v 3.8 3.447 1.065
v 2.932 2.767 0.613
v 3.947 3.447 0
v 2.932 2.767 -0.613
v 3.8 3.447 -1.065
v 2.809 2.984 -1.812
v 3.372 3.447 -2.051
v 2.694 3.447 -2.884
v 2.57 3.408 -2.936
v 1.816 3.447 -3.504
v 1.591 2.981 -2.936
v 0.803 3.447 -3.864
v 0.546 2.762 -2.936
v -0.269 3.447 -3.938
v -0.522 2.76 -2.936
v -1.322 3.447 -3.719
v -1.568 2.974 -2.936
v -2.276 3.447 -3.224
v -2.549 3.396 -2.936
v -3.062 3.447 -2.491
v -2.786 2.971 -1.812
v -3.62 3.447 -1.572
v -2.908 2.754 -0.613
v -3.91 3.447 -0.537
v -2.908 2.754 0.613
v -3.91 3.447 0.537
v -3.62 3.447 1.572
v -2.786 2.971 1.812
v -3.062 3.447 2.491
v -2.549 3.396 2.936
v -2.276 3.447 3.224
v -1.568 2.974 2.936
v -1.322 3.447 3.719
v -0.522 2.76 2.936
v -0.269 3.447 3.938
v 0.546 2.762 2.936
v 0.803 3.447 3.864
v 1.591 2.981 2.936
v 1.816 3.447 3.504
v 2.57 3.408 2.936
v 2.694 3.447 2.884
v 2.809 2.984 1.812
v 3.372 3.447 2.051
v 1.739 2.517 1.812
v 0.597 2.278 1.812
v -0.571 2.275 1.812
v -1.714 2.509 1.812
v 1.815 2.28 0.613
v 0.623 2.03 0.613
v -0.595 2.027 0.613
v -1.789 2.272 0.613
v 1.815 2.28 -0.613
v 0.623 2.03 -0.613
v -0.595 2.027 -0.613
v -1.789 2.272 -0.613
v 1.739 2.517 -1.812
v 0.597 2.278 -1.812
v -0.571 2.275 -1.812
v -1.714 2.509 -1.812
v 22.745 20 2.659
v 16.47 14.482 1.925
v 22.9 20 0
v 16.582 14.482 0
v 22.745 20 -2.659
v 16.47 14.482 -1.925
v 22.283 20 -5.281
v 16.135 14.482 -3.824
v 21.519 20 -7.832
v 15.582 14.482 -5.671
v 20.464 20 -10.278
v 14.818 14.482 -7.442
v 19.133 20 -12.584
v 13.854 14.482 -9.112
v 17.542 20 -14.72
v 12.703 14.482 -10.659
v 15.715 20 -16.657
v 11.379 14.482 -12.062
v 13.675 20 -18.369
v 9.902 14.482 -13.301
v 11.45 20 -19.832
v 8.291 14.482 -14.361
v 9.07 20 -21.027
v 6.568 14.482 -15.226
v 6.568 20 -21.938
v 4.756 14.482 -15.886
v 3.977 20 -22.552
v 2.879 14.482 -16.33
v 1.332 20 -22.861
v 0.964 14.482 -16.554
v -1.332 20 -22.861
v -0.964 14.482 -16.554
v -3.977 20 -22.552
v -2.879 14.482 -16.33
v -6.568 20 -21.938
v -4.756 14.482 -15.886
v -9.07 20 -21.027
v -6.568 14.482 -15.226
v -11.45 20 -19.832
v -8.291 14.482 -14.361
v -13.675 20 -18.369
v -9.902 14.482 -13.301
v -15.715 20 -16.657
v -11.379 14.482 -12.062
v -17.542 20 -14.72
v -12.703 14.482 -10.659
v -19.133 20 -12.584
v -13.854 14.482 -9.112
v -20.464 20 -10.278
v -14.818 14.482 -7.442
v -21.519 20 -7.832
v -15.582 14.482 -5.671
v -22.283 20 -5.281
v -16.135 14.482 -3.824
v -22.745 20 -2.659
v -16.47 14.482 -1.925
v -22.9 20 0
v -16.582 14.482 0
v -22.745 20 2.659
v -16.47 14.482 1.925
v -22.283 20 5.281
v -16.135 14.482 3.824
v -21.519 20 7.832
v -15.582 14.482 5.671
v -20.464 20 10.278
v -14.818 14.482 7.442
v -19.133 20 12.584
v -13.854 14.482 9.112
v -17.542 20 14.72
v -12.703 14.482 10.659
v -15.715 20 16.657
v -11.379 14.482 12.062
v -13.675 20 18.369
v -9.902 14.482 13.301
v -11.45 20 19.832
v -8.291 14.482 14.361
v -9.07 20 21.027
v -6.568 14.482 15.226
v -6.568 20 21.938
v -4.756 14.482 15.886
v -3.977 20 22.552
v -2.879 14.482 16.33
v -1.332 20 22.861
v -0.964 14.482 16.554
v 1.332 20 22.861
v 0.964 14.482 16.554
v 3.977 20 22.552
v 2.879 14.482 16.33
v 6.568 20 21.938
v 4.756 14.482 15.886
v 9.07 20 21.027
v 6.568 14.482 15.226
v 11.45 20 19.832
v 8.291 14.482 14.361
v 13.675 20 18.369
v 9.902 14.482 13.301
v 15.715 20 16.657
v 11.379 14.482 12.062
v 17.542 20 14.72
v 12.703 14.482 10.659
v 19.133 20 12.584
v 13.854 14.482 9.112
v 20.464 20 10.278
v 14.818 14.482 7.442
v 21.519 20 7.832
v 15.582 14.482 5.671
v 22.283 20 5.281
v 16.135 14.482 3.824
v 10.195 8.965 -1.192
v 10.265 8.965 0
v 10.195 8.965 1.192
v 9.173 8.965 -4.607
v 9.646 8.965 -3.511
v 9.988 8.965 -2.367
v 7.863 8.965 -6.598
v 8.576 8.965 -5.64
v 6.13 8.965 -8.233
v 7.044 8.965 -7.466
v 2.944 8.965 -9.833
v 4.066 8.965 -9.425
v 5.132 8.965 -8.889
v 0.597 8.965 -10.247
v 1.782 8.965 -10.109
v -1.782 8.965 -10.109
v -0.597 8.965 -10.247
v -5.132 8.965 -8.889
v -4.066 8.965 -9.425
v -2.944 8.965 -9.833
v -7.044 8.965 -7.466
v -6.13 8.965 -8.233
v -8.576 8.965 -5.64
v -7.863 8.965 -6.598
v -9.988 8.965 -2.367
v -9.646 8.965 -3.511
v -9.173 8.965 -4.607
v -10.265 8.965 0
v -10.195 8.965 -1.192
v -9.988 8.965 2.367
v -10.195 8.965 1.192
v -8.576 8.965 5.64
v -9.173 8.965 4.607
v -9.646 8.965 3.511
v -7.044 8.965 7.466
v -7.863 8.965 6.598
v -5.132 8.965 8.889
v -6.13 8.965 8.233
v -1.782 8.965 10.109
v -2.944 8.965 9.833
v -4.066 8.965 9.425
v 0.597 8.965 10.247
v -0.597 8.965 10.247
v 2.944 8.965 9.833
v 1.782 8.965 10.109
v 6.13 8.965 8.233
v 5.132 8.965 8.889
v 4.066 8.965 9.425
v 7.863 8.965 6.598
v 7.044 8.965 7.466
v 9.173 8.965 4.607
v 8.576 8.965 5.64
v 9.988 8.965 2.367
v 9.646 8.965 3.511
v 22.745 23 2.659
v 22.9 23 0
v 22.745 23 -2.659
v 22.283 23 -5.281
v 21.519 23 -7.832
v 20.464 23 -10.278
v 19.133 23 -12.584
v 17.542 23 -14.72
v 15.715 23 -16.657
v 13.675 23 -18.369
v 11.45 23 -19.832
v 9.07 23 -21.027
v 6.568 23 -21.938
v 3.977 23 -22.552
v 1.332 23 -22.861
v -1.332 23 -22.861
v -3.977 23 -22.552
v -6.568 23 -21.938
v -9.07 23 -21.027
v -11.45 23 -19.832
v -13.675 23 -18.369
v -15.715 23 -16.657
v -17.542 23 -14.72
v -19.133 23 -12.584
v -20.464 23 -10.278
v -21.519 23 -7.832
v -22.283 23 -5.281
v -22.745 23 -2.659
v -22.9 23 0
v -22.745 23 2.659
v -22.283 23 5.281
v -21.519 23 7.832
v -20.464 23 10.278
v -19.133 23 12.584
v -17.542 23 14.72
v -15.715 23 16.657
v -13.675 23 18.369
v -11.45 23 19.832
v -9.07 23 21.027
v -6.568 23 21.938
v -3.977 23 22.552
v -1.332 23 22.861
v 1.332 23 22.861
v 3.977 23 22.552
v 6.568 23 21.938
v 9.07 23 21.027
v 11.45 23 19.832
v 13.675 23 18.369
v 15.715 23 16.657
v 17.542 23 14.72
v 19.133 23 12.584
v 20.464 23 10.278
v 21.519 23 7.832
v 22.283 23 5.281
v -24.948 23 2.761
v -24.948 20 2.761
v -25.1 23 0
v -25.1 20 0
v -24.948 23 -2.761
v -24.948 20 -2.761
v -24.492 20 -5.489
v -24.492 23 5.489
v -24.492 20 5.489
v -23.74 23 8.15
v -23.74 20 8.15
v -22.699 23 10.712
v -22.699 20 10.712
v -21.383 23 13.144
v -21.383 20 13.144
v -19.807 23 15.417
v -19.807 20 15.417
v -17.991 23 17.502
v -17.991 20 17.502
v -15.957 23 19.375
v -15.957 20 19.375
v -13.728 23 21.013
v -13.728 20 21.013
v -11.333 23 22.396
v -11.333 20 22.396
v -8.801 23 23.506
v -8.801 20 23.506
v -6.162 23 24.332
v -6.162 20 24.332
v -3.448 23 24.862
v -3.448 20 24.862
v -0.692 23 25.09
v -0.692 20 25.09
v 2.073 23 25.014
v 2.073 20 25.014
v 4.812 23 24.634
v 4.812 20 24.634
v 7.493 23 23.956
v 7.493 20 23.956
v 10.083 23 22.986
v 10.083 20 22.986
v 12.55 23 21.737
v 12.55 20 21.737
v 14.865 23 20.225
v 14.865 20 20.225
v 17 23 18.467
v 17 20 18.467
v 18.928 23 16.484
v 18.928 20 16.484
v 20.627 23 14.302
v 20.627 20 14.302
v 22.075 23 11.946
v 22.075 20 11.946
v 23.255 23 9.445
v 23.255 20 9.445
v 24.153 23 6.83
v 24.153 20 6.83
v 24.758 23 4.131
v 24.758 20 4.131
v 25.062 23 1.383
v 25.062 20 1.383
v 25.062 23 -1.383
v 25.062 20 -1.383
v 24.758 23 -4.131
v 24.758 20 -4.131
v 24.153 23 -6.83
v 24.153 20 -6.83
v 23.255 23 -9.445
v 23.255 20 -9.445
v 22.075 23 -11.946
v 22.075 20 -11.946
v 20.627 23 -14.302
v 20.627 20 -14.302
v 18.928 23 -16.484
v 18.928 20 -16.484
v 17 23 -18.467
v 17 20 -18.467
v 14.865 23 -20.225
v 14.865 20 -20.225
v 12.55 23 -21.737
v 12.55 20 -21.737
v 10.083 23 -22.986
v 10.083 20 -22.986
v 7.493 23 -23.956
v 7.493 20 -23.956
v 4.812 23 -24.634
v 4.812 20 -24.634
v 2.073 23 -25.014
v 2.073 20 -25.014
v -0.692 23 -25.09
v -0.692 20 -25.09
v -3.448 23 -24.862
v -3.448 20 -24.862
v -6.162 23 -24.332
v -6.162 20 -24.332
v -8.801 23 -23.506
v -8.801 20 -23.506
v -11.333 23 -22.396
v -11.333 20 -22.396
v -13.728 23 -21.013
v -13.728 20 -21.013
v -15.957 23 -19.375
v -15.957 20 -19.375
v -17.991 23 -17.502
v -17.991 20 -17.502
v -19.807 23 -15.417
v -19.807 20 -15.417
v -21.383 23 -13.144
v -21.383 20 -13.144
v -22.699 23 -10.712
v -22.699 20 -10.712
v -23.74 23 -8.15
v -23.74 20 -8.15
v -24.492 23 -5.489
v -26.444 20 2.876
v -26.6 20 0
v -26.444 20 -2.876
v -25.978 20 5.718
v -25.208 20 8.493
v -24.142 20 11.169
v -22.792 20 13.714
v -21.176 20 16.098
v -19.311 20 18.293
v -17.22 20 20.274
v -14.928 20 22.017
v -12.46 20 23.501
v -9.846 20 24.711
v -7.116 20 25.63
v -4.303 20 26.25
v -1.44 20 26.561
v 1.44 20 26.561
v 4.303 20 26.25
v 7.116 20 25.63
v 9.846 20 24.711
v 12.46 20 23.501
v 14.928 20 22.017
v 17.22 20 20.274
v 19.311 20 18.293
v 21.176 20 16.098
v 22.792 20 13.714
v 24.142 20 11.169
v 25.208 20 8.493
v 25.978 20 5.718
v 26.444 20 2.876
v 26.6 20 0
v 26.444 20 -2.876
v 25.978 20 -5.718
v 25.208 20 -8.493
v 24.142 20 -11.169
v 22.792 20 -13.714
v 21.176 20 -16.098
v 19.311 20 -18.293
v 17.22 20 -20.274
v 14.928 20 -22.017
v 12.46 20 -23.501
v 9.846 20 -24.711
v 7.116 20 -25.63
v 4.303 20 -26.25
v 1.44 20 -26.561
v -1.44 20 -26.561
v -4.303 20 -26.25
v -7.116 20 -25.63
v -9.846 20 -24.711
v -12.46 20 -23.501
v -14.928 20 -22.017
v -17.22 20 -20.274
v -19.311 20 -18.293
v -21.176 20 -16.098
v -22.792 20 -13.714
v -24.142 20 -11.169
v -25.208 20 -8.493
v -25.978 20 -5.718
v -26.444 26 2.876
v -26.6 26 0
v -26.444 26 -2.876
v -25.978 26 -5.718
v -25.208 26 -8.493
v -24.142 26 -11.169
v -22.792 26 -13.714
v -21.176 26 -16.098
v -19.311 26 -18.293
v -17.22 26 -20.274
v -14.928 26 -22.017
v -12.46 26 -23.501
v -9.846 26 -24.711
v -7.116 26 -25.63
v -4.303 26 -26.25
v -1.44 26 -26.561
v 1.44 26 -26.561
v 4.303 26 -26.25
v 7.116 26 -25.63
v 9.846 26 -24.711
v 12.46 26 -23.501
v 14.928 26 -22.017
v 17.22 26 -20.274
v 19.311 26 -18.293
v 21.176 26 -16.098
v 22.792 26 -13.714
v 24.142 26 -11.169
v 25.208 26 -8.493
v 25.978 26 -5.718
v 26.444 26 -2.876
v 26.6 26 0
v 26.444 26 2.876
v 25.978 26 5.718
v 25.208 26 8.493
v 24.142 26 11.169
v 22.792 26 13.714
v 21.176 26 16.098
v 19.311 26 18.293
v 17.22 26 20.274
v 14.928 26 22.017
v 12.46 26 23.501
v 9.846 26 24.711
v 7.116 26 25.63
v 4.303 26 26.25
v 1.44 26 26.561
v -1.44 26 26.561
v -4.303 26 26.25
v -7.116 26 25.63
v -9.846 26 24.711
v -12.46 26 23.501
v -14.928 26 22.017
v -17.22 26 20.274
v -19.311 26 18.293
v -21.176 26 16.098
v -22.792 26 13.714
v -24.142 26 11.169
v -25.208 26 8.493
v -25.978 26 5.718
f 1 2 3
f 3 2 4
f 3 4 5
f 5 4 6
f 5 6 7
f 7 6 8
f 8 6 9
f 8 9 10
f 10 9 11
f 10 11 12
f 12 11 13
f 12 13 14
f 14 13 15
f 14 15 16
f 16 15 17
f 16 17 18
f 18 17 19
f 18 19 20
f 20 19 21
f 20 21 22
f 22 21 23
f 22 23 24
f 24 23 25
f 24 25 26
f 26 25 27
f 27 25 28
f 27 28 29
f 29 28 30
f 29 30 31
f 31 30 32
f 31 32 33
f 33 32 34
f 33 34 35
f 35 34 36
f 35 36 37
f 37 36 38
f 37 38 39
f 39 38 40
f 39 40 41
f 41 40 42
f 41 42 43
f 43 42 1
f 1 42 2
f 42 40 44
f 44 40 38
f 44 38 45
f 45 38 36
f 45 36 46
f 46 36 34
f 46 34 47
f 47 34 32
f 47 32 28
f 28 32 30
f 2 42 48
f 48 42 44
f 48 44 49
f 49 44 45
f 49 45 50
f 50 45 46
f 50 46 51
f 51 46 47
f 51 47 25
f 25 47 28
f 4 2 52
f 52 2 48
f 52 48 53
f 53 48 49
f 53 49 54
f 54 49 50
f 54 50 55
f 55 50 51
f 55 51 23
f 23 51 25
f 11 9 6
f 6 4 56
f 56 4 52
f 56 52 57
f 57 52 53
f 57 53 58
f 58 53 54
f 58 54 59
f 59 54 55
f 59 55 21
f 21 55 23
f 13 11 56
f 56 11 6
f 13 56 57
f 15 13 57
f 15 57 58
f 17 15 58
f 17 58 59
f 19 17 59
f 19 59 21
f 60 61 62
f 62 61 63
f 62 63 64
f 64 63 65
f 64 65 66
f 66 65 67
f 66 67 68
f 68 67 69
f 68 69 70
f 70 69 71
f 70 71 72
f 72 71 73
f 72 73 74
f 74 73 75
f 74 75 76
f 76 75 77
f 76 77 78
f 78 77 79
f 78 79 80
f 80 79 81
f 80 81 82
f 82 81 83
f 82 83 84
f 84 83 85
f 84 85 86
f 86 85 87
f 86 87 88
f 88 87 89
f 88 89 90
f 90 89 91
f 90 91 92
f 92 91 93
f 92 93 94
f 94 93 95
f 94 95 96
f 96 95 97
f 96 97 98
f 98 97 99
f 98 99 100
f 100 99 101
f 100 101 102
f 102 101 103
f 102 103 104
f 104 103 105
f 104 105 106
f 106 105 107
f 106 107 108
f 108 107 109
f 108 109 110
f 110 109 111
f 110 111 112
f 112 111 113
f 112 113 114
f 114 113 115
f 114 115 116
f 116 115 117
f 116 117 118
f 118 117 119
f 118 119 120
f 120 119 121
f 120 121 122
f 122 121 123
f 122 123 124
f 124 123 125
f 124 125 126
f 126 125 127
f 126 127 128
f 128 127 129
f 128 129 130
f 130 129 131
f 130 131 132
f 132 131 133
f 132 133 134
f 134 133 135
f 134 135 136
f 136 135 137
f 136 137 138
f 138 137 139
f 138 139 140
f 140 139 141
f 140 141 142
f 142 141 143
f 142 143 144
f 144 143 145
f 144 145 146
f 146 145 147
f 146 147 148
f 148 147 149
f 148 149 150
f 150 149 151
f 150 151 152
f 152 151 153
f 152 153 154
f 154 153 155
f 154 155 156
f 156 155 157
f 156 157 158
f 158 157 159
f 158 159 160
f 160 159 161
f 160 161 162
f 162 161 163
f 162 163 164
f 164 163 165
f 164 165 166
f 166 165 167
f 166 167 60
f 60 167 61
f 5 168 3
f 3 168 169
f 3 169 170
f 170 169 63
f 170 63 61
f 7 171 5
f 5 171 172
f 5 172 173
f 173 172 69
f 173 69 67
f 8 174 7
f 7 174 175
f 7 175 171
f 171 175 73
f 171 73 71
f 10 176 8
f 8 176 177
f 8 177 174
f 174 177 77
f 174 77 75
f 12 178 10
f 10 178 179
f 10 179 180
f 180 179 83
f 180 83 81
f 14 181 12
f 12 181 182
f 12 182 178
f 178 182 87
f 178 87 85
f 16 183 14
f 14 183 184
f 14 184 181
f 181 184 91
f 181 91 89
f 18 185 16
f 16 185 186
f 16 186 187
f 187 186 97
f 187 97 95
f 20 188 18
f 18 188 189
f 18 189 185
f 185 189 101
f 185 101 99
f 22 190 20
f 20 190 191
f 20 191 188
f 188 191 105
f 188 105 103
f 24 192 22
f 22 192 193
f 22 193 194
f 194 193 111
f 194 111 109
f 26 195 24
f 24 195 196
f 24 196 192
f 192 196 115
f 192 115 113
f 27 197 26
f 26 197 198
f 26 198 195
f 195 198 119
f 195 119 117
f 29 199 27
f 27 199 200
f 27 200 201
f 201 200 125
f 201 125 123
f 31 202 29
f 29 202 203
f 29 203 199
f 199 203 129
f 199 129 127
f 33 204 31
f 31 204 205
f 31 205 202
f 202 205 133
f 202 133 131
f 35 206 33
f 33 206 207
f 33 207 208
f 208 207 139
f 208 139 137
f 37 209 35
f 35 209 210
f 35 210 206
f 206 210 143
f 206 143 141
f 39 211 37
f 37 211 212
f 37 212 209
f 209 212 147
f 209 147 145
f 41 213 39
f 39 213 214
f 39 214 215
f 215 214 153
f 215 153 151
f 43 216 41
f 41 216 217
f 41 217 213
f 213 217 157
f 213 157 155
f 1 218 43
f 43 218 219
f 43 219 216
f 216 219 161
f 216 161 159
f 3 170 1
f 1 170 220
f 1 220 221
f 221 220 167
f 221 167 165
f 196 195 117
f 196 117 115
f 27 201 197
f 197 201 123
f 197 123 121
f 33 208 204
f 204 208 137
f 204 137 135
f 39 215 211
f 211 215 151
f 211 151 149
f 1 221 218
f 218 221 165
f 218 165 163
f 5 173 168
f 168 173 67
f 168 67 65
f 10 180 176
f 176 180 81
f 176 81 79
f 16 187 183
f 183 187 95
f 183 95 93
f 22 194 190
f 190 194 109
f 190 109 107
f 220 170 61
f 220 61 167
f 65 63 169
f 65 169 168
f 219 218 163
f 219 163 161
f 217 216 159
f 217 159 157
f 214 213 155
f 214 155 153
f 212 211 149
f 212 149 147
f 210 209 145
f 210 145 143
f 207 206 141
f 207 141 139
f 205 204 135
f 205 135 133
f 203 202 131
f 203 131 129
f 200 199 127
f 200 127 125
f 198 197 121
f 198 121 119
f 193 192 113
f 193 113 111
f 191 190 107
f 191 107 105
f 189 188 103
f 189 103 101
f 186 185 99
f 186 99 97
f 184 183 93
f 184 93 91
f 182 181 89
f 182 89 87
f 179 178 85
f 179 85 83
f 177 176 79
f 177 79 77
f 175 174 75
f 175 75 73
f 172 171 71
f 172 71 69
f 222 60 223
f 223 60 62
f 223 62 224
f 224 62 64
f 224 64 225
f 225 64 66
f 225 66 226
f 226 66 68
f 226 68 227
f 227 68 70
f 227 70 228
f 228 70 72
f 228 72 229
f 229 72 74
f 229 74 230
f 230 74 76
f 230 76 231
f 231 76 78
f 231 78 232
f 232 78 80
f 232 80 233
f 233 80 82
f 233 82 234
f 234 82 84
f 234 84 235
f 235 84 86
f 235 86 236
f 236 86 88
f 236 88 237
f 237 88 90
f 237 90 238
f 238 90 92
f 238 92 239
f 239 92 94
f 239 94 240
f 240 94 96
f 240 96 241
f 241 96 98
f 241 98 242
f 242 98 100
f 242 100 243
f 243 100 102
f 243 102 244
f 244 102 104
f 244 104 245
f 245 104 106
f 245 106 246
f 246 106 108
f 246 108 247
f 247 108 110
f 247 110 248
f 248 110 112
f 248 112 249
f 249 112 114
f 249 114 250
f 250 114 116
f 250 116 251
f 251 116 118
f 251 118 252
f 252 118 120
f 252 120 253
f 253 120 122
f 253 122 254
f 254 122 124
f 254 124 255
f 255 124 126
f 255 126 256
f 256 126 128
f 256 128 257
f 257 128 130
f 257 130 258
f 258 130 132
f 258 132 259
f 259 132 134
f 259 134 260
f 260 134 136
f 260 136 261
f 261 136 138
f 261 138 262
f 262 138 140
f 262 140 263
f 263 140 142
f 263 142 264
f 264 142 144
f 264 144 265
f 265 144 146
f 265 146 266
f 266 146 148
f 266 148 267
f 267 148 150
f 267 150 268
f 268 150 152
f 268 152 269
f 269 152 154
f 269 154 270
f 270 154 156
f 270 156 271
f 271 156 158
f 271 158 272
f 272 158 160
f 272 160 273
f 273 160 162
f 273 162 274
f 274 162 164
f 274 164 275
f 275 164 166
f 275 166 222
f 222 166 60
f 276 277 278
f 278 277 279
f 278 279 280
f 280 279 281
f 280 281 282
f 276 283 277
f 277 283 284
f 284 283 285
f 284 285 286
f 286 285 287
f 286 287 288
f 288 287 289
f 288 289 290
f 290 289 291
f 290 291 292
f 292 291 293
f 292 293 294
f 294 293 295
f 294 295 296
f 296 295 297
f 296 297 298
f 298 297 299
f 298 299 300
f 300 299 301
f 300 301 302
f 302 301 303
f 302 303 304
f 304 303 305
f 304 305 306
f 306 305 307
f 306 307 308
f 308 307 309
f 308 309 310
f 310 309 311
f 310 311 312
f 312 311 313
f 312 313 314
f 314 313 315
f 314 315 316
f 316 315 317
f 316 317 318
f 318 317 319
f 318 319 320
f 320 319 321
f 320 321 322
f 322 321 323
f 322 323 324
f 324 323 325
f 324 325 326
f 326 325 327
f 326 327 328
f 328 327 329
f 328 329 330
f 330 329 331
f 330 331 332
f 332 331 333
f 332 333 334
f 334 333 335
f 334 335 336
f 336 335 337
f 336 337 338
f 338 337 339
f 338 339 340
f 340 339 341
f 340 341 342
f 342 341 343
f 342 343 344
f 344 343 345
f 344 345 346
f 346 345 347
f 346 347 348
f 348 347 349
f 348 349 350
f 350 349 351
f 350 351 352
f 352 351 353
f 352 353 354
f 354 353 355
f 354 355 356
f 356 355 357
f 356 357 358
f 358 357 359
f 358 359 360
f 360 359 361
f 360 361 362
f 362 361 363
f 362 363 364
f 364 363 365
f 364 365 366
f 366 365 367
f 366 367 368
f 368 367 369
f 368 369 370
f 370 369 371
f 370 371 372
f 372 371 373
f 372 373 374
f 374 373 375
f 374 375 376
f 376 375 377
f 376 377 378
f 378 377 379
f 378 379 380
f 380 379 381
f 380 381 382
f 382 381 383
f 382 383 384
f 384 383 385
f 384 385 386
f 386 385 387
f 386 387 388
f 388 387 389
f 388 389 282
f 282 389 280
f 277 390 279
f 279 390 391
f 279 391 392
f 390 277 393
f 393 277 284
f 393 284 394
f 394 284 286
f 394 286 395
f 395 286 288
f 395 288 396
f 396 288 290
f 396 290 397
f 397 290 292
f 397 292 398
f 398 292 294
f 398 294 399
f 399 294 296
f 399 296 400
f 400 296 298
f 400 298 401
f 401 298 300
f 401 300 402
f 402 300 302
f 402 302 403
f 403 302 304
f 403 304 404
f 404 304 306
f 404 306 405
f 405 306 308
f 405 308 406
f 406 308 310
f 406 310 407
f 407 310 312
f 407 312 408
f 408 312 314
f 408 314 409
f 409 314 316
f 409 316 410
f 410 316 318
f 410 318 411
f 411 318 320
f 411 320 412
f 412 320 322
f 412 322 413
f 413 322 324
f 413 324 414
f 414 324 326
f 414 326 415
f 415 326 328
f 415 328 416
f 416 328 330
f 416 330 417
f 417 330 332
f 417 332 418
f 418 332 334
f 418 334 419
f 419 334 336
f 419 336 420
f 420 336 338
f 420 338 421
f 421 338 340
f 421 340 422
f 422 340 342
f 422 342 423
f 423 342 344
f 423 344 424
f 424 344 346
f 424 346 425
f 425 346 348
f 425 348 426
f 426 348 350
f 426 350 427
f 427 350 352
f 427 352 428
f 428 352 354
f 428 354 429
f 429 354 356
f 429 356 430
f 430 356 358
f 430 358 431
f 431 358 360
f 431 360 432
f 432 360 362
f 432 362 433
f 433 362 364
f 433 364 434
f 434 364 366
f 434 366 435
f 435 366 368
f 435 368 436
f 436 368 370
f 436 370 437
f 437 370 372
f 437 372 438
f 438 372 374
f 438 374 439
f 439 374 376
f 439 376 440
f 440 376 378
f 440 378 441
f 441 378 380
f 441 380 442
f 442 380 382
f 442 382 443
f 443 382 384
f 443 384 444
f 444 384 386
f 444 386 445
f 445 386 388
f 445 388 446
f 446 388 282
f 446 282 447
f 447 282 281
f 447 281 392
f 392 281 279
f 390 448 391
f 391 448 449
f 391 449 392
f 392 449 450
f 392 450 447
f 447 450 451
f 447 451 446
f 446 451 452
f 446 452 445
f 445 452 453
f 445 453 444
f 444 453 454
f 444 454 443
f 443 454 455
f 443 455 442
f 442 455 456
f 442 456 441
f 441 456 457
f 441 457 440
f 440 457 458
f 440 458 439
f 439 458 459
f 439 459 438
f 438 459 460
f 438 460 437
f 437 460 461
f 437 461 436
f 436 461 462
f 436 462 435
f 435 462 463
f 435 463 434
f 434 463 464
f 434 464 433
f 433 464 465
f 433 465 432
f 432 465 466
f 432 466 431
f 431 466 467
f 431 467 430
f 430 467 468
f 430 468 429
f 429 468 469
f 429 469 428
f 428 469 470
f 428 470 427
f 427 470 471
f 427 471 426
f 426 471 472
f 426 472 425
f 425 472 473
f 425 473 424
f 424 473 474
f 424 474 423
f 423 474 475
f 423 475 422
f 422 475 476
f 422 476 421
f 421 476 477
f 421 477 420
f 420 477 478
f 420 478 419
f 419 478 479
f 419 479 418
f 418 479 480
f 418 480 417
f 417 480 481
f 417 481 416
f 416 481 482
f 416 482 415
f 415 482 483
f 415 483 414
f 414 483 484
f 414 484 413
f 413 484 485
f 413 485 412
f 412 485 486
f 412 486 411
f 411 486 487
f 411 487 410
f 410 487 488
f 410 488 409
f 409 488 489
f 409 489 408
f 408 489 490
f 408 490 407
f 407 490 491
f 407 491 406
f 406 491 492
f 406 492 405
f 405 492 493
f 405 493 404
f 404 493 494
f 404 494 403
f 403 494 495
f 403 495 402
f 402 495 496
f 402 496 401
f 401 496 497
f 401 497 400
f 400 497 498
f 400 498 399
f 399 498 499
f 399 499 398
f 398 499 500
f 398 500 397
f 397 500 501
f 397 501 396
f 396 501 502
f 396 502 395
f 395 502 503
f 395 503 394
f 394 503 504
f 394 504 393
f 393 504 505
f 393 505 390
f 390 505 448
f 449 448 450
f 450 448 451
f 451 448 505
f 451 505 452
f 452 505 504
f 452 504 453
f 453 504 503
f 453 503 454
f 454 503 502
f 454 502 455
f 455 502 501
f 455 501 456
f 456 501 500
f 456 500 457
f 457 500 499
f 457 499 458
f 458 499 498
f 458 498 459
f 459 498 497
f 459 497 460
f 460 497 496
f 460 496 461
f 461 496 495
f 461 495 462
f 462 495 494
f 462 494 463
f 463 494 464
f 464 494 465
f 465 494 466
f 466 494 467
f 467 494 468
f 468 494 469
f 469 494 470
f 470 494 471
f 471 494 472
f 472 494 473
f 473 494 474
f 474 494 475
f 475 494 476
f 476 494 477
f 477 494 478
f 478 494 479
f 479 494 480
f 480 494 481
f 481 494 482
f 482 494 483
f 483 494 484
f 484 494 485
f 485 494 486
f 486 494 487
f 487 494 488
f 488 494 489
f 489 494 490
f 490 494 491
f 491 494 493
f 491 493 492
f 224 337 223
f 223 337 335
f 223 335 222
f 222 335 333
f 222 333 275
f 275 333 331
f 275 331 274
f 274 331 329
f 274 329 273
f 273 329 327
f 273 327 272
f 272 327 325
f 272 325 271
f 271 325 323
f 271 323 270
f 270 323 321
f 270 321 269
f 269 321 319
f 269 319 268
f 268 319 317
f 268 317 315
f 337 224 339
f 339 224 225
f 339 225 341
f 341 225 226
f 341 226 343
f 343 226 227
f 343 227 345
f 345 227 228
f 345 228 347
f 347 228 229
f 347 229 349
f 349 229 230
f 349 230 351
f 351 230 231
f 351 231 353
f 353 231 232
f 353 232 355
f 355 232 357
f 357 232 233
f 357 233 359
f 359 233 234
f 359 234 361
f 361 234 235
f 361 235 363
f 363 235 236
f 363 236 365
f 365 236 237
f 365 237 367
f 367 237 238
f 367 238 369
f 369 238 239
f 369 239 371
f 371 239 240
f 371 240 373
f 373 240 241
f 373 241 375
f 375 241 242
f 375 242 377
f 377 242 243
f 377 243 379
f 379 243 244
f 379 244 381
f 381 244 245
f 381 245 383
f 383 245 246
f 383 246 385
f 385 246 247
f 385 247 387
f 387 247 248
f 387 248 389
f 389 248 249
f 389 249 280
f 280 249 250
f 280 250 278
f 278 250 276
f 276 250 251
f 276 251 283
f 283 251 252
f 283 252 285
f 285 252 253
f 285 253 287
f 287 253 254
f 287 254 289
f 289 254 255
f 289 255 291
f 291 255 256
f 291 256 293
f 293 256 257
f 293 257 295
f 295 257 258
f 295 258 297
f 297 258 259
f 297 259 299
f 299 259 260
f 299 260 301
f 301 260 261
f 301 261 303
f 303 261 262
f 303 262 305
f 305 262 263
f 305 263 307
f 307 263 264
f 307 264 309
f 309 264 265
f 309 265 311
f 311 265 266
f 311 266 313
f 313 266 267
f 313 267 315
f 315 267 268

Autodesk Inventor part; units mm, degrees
ref_plane "YZ Plane" through (0, 0, 0) normal (1, 0, 0) x (0, 1, 0)
ref_plane "XZ Plane" through (0, 0, 0) normal (0, 1, 0) x (-1, 0, 0)
ref_plane "XY Plane" through (0, 0, 0) normal (0, 0, 1) x (1, 0, 0)
sketch "スケッチ1" plane through (0, 0, 0) normal (0, 0, 1) x (1, 0, 0)
  line L0 (-22.9, 20) -> (-3.9468, 3.447)
  line L1 (3.9468, 3.447) -> (22.9, 20)
  line L2 (-22.9, 20) -> (22.9, 20)
  line L3 (0, 0) -> (0, 20) construction
  line L4 (-22.9, 23) -> (22.9, 23)
  line L5 (22.9, 23) -> (22.9, 20)
  line L6 (22.9, 20) -> (-22.9, 20)
  line L7 (-22.9, 20) -> (-22.9, 23)
  line L8 (0, -407.3642) -> (0, 141.394) projected
  line L9 (0, 0) -> (0, 23)
  arc A0 (-3.9468, 3.447) -> (3.9468, 3.447) centre (0, 7.9661) ccw
  line L10 (0, -328.9702) -> (-1095, -328.9702)
  line L11 (22.9, 23) -> (25.1, 23)
  line L12 (25.1, 23) -> (25.1, 20)
  line L13 (25.1, 20) -> (26.6, 20)
  line L14 (26.6, 20) -> (26.6, 26)
  line L15 (26.6, 26) -> (-26.6, 26)
  line L16 (-26.6, 26) -> (-26.6, 20)
  line L17 (-26.6, 20) -> (-25.1, 20)
  line L18 (-25.1, 20) -> (-25.1, 23)
  line L19 (-25.1, 23) -> (-22.9, 23)
  line L20 (-22.9, 23) -> (-22.9, 63)
  line L21 (-22.9, 63) -> (22.9, 63)
  line L22 (22.9, 63) -> (22.9, 23)
  point P0 (0, 1.9661)
  point P1 (0, 26)
  point P2 (0, 63)
  dimension "d0" = 45.8
  dimension "d1" = 20
  dimension "d3" = 3
  dimension "d5" = 6
  dimension "d6" = 1095
  dimension "d8" = 2.2
  dimension "d9" = 1.5
  dimension "d10" = 3
  dimension "d14" = 40
revolve "回転1" add sketch "スケッチ1" angle 360 about axis through (0, -10, 0) along (0, 1, 0) contours L8 L4 L5 L2 | L2 L1 A0 L8 | L8 L15 L22 L4 | L22 L15 L14 L13 L12 L11
properties part number "Camera_mirror"
